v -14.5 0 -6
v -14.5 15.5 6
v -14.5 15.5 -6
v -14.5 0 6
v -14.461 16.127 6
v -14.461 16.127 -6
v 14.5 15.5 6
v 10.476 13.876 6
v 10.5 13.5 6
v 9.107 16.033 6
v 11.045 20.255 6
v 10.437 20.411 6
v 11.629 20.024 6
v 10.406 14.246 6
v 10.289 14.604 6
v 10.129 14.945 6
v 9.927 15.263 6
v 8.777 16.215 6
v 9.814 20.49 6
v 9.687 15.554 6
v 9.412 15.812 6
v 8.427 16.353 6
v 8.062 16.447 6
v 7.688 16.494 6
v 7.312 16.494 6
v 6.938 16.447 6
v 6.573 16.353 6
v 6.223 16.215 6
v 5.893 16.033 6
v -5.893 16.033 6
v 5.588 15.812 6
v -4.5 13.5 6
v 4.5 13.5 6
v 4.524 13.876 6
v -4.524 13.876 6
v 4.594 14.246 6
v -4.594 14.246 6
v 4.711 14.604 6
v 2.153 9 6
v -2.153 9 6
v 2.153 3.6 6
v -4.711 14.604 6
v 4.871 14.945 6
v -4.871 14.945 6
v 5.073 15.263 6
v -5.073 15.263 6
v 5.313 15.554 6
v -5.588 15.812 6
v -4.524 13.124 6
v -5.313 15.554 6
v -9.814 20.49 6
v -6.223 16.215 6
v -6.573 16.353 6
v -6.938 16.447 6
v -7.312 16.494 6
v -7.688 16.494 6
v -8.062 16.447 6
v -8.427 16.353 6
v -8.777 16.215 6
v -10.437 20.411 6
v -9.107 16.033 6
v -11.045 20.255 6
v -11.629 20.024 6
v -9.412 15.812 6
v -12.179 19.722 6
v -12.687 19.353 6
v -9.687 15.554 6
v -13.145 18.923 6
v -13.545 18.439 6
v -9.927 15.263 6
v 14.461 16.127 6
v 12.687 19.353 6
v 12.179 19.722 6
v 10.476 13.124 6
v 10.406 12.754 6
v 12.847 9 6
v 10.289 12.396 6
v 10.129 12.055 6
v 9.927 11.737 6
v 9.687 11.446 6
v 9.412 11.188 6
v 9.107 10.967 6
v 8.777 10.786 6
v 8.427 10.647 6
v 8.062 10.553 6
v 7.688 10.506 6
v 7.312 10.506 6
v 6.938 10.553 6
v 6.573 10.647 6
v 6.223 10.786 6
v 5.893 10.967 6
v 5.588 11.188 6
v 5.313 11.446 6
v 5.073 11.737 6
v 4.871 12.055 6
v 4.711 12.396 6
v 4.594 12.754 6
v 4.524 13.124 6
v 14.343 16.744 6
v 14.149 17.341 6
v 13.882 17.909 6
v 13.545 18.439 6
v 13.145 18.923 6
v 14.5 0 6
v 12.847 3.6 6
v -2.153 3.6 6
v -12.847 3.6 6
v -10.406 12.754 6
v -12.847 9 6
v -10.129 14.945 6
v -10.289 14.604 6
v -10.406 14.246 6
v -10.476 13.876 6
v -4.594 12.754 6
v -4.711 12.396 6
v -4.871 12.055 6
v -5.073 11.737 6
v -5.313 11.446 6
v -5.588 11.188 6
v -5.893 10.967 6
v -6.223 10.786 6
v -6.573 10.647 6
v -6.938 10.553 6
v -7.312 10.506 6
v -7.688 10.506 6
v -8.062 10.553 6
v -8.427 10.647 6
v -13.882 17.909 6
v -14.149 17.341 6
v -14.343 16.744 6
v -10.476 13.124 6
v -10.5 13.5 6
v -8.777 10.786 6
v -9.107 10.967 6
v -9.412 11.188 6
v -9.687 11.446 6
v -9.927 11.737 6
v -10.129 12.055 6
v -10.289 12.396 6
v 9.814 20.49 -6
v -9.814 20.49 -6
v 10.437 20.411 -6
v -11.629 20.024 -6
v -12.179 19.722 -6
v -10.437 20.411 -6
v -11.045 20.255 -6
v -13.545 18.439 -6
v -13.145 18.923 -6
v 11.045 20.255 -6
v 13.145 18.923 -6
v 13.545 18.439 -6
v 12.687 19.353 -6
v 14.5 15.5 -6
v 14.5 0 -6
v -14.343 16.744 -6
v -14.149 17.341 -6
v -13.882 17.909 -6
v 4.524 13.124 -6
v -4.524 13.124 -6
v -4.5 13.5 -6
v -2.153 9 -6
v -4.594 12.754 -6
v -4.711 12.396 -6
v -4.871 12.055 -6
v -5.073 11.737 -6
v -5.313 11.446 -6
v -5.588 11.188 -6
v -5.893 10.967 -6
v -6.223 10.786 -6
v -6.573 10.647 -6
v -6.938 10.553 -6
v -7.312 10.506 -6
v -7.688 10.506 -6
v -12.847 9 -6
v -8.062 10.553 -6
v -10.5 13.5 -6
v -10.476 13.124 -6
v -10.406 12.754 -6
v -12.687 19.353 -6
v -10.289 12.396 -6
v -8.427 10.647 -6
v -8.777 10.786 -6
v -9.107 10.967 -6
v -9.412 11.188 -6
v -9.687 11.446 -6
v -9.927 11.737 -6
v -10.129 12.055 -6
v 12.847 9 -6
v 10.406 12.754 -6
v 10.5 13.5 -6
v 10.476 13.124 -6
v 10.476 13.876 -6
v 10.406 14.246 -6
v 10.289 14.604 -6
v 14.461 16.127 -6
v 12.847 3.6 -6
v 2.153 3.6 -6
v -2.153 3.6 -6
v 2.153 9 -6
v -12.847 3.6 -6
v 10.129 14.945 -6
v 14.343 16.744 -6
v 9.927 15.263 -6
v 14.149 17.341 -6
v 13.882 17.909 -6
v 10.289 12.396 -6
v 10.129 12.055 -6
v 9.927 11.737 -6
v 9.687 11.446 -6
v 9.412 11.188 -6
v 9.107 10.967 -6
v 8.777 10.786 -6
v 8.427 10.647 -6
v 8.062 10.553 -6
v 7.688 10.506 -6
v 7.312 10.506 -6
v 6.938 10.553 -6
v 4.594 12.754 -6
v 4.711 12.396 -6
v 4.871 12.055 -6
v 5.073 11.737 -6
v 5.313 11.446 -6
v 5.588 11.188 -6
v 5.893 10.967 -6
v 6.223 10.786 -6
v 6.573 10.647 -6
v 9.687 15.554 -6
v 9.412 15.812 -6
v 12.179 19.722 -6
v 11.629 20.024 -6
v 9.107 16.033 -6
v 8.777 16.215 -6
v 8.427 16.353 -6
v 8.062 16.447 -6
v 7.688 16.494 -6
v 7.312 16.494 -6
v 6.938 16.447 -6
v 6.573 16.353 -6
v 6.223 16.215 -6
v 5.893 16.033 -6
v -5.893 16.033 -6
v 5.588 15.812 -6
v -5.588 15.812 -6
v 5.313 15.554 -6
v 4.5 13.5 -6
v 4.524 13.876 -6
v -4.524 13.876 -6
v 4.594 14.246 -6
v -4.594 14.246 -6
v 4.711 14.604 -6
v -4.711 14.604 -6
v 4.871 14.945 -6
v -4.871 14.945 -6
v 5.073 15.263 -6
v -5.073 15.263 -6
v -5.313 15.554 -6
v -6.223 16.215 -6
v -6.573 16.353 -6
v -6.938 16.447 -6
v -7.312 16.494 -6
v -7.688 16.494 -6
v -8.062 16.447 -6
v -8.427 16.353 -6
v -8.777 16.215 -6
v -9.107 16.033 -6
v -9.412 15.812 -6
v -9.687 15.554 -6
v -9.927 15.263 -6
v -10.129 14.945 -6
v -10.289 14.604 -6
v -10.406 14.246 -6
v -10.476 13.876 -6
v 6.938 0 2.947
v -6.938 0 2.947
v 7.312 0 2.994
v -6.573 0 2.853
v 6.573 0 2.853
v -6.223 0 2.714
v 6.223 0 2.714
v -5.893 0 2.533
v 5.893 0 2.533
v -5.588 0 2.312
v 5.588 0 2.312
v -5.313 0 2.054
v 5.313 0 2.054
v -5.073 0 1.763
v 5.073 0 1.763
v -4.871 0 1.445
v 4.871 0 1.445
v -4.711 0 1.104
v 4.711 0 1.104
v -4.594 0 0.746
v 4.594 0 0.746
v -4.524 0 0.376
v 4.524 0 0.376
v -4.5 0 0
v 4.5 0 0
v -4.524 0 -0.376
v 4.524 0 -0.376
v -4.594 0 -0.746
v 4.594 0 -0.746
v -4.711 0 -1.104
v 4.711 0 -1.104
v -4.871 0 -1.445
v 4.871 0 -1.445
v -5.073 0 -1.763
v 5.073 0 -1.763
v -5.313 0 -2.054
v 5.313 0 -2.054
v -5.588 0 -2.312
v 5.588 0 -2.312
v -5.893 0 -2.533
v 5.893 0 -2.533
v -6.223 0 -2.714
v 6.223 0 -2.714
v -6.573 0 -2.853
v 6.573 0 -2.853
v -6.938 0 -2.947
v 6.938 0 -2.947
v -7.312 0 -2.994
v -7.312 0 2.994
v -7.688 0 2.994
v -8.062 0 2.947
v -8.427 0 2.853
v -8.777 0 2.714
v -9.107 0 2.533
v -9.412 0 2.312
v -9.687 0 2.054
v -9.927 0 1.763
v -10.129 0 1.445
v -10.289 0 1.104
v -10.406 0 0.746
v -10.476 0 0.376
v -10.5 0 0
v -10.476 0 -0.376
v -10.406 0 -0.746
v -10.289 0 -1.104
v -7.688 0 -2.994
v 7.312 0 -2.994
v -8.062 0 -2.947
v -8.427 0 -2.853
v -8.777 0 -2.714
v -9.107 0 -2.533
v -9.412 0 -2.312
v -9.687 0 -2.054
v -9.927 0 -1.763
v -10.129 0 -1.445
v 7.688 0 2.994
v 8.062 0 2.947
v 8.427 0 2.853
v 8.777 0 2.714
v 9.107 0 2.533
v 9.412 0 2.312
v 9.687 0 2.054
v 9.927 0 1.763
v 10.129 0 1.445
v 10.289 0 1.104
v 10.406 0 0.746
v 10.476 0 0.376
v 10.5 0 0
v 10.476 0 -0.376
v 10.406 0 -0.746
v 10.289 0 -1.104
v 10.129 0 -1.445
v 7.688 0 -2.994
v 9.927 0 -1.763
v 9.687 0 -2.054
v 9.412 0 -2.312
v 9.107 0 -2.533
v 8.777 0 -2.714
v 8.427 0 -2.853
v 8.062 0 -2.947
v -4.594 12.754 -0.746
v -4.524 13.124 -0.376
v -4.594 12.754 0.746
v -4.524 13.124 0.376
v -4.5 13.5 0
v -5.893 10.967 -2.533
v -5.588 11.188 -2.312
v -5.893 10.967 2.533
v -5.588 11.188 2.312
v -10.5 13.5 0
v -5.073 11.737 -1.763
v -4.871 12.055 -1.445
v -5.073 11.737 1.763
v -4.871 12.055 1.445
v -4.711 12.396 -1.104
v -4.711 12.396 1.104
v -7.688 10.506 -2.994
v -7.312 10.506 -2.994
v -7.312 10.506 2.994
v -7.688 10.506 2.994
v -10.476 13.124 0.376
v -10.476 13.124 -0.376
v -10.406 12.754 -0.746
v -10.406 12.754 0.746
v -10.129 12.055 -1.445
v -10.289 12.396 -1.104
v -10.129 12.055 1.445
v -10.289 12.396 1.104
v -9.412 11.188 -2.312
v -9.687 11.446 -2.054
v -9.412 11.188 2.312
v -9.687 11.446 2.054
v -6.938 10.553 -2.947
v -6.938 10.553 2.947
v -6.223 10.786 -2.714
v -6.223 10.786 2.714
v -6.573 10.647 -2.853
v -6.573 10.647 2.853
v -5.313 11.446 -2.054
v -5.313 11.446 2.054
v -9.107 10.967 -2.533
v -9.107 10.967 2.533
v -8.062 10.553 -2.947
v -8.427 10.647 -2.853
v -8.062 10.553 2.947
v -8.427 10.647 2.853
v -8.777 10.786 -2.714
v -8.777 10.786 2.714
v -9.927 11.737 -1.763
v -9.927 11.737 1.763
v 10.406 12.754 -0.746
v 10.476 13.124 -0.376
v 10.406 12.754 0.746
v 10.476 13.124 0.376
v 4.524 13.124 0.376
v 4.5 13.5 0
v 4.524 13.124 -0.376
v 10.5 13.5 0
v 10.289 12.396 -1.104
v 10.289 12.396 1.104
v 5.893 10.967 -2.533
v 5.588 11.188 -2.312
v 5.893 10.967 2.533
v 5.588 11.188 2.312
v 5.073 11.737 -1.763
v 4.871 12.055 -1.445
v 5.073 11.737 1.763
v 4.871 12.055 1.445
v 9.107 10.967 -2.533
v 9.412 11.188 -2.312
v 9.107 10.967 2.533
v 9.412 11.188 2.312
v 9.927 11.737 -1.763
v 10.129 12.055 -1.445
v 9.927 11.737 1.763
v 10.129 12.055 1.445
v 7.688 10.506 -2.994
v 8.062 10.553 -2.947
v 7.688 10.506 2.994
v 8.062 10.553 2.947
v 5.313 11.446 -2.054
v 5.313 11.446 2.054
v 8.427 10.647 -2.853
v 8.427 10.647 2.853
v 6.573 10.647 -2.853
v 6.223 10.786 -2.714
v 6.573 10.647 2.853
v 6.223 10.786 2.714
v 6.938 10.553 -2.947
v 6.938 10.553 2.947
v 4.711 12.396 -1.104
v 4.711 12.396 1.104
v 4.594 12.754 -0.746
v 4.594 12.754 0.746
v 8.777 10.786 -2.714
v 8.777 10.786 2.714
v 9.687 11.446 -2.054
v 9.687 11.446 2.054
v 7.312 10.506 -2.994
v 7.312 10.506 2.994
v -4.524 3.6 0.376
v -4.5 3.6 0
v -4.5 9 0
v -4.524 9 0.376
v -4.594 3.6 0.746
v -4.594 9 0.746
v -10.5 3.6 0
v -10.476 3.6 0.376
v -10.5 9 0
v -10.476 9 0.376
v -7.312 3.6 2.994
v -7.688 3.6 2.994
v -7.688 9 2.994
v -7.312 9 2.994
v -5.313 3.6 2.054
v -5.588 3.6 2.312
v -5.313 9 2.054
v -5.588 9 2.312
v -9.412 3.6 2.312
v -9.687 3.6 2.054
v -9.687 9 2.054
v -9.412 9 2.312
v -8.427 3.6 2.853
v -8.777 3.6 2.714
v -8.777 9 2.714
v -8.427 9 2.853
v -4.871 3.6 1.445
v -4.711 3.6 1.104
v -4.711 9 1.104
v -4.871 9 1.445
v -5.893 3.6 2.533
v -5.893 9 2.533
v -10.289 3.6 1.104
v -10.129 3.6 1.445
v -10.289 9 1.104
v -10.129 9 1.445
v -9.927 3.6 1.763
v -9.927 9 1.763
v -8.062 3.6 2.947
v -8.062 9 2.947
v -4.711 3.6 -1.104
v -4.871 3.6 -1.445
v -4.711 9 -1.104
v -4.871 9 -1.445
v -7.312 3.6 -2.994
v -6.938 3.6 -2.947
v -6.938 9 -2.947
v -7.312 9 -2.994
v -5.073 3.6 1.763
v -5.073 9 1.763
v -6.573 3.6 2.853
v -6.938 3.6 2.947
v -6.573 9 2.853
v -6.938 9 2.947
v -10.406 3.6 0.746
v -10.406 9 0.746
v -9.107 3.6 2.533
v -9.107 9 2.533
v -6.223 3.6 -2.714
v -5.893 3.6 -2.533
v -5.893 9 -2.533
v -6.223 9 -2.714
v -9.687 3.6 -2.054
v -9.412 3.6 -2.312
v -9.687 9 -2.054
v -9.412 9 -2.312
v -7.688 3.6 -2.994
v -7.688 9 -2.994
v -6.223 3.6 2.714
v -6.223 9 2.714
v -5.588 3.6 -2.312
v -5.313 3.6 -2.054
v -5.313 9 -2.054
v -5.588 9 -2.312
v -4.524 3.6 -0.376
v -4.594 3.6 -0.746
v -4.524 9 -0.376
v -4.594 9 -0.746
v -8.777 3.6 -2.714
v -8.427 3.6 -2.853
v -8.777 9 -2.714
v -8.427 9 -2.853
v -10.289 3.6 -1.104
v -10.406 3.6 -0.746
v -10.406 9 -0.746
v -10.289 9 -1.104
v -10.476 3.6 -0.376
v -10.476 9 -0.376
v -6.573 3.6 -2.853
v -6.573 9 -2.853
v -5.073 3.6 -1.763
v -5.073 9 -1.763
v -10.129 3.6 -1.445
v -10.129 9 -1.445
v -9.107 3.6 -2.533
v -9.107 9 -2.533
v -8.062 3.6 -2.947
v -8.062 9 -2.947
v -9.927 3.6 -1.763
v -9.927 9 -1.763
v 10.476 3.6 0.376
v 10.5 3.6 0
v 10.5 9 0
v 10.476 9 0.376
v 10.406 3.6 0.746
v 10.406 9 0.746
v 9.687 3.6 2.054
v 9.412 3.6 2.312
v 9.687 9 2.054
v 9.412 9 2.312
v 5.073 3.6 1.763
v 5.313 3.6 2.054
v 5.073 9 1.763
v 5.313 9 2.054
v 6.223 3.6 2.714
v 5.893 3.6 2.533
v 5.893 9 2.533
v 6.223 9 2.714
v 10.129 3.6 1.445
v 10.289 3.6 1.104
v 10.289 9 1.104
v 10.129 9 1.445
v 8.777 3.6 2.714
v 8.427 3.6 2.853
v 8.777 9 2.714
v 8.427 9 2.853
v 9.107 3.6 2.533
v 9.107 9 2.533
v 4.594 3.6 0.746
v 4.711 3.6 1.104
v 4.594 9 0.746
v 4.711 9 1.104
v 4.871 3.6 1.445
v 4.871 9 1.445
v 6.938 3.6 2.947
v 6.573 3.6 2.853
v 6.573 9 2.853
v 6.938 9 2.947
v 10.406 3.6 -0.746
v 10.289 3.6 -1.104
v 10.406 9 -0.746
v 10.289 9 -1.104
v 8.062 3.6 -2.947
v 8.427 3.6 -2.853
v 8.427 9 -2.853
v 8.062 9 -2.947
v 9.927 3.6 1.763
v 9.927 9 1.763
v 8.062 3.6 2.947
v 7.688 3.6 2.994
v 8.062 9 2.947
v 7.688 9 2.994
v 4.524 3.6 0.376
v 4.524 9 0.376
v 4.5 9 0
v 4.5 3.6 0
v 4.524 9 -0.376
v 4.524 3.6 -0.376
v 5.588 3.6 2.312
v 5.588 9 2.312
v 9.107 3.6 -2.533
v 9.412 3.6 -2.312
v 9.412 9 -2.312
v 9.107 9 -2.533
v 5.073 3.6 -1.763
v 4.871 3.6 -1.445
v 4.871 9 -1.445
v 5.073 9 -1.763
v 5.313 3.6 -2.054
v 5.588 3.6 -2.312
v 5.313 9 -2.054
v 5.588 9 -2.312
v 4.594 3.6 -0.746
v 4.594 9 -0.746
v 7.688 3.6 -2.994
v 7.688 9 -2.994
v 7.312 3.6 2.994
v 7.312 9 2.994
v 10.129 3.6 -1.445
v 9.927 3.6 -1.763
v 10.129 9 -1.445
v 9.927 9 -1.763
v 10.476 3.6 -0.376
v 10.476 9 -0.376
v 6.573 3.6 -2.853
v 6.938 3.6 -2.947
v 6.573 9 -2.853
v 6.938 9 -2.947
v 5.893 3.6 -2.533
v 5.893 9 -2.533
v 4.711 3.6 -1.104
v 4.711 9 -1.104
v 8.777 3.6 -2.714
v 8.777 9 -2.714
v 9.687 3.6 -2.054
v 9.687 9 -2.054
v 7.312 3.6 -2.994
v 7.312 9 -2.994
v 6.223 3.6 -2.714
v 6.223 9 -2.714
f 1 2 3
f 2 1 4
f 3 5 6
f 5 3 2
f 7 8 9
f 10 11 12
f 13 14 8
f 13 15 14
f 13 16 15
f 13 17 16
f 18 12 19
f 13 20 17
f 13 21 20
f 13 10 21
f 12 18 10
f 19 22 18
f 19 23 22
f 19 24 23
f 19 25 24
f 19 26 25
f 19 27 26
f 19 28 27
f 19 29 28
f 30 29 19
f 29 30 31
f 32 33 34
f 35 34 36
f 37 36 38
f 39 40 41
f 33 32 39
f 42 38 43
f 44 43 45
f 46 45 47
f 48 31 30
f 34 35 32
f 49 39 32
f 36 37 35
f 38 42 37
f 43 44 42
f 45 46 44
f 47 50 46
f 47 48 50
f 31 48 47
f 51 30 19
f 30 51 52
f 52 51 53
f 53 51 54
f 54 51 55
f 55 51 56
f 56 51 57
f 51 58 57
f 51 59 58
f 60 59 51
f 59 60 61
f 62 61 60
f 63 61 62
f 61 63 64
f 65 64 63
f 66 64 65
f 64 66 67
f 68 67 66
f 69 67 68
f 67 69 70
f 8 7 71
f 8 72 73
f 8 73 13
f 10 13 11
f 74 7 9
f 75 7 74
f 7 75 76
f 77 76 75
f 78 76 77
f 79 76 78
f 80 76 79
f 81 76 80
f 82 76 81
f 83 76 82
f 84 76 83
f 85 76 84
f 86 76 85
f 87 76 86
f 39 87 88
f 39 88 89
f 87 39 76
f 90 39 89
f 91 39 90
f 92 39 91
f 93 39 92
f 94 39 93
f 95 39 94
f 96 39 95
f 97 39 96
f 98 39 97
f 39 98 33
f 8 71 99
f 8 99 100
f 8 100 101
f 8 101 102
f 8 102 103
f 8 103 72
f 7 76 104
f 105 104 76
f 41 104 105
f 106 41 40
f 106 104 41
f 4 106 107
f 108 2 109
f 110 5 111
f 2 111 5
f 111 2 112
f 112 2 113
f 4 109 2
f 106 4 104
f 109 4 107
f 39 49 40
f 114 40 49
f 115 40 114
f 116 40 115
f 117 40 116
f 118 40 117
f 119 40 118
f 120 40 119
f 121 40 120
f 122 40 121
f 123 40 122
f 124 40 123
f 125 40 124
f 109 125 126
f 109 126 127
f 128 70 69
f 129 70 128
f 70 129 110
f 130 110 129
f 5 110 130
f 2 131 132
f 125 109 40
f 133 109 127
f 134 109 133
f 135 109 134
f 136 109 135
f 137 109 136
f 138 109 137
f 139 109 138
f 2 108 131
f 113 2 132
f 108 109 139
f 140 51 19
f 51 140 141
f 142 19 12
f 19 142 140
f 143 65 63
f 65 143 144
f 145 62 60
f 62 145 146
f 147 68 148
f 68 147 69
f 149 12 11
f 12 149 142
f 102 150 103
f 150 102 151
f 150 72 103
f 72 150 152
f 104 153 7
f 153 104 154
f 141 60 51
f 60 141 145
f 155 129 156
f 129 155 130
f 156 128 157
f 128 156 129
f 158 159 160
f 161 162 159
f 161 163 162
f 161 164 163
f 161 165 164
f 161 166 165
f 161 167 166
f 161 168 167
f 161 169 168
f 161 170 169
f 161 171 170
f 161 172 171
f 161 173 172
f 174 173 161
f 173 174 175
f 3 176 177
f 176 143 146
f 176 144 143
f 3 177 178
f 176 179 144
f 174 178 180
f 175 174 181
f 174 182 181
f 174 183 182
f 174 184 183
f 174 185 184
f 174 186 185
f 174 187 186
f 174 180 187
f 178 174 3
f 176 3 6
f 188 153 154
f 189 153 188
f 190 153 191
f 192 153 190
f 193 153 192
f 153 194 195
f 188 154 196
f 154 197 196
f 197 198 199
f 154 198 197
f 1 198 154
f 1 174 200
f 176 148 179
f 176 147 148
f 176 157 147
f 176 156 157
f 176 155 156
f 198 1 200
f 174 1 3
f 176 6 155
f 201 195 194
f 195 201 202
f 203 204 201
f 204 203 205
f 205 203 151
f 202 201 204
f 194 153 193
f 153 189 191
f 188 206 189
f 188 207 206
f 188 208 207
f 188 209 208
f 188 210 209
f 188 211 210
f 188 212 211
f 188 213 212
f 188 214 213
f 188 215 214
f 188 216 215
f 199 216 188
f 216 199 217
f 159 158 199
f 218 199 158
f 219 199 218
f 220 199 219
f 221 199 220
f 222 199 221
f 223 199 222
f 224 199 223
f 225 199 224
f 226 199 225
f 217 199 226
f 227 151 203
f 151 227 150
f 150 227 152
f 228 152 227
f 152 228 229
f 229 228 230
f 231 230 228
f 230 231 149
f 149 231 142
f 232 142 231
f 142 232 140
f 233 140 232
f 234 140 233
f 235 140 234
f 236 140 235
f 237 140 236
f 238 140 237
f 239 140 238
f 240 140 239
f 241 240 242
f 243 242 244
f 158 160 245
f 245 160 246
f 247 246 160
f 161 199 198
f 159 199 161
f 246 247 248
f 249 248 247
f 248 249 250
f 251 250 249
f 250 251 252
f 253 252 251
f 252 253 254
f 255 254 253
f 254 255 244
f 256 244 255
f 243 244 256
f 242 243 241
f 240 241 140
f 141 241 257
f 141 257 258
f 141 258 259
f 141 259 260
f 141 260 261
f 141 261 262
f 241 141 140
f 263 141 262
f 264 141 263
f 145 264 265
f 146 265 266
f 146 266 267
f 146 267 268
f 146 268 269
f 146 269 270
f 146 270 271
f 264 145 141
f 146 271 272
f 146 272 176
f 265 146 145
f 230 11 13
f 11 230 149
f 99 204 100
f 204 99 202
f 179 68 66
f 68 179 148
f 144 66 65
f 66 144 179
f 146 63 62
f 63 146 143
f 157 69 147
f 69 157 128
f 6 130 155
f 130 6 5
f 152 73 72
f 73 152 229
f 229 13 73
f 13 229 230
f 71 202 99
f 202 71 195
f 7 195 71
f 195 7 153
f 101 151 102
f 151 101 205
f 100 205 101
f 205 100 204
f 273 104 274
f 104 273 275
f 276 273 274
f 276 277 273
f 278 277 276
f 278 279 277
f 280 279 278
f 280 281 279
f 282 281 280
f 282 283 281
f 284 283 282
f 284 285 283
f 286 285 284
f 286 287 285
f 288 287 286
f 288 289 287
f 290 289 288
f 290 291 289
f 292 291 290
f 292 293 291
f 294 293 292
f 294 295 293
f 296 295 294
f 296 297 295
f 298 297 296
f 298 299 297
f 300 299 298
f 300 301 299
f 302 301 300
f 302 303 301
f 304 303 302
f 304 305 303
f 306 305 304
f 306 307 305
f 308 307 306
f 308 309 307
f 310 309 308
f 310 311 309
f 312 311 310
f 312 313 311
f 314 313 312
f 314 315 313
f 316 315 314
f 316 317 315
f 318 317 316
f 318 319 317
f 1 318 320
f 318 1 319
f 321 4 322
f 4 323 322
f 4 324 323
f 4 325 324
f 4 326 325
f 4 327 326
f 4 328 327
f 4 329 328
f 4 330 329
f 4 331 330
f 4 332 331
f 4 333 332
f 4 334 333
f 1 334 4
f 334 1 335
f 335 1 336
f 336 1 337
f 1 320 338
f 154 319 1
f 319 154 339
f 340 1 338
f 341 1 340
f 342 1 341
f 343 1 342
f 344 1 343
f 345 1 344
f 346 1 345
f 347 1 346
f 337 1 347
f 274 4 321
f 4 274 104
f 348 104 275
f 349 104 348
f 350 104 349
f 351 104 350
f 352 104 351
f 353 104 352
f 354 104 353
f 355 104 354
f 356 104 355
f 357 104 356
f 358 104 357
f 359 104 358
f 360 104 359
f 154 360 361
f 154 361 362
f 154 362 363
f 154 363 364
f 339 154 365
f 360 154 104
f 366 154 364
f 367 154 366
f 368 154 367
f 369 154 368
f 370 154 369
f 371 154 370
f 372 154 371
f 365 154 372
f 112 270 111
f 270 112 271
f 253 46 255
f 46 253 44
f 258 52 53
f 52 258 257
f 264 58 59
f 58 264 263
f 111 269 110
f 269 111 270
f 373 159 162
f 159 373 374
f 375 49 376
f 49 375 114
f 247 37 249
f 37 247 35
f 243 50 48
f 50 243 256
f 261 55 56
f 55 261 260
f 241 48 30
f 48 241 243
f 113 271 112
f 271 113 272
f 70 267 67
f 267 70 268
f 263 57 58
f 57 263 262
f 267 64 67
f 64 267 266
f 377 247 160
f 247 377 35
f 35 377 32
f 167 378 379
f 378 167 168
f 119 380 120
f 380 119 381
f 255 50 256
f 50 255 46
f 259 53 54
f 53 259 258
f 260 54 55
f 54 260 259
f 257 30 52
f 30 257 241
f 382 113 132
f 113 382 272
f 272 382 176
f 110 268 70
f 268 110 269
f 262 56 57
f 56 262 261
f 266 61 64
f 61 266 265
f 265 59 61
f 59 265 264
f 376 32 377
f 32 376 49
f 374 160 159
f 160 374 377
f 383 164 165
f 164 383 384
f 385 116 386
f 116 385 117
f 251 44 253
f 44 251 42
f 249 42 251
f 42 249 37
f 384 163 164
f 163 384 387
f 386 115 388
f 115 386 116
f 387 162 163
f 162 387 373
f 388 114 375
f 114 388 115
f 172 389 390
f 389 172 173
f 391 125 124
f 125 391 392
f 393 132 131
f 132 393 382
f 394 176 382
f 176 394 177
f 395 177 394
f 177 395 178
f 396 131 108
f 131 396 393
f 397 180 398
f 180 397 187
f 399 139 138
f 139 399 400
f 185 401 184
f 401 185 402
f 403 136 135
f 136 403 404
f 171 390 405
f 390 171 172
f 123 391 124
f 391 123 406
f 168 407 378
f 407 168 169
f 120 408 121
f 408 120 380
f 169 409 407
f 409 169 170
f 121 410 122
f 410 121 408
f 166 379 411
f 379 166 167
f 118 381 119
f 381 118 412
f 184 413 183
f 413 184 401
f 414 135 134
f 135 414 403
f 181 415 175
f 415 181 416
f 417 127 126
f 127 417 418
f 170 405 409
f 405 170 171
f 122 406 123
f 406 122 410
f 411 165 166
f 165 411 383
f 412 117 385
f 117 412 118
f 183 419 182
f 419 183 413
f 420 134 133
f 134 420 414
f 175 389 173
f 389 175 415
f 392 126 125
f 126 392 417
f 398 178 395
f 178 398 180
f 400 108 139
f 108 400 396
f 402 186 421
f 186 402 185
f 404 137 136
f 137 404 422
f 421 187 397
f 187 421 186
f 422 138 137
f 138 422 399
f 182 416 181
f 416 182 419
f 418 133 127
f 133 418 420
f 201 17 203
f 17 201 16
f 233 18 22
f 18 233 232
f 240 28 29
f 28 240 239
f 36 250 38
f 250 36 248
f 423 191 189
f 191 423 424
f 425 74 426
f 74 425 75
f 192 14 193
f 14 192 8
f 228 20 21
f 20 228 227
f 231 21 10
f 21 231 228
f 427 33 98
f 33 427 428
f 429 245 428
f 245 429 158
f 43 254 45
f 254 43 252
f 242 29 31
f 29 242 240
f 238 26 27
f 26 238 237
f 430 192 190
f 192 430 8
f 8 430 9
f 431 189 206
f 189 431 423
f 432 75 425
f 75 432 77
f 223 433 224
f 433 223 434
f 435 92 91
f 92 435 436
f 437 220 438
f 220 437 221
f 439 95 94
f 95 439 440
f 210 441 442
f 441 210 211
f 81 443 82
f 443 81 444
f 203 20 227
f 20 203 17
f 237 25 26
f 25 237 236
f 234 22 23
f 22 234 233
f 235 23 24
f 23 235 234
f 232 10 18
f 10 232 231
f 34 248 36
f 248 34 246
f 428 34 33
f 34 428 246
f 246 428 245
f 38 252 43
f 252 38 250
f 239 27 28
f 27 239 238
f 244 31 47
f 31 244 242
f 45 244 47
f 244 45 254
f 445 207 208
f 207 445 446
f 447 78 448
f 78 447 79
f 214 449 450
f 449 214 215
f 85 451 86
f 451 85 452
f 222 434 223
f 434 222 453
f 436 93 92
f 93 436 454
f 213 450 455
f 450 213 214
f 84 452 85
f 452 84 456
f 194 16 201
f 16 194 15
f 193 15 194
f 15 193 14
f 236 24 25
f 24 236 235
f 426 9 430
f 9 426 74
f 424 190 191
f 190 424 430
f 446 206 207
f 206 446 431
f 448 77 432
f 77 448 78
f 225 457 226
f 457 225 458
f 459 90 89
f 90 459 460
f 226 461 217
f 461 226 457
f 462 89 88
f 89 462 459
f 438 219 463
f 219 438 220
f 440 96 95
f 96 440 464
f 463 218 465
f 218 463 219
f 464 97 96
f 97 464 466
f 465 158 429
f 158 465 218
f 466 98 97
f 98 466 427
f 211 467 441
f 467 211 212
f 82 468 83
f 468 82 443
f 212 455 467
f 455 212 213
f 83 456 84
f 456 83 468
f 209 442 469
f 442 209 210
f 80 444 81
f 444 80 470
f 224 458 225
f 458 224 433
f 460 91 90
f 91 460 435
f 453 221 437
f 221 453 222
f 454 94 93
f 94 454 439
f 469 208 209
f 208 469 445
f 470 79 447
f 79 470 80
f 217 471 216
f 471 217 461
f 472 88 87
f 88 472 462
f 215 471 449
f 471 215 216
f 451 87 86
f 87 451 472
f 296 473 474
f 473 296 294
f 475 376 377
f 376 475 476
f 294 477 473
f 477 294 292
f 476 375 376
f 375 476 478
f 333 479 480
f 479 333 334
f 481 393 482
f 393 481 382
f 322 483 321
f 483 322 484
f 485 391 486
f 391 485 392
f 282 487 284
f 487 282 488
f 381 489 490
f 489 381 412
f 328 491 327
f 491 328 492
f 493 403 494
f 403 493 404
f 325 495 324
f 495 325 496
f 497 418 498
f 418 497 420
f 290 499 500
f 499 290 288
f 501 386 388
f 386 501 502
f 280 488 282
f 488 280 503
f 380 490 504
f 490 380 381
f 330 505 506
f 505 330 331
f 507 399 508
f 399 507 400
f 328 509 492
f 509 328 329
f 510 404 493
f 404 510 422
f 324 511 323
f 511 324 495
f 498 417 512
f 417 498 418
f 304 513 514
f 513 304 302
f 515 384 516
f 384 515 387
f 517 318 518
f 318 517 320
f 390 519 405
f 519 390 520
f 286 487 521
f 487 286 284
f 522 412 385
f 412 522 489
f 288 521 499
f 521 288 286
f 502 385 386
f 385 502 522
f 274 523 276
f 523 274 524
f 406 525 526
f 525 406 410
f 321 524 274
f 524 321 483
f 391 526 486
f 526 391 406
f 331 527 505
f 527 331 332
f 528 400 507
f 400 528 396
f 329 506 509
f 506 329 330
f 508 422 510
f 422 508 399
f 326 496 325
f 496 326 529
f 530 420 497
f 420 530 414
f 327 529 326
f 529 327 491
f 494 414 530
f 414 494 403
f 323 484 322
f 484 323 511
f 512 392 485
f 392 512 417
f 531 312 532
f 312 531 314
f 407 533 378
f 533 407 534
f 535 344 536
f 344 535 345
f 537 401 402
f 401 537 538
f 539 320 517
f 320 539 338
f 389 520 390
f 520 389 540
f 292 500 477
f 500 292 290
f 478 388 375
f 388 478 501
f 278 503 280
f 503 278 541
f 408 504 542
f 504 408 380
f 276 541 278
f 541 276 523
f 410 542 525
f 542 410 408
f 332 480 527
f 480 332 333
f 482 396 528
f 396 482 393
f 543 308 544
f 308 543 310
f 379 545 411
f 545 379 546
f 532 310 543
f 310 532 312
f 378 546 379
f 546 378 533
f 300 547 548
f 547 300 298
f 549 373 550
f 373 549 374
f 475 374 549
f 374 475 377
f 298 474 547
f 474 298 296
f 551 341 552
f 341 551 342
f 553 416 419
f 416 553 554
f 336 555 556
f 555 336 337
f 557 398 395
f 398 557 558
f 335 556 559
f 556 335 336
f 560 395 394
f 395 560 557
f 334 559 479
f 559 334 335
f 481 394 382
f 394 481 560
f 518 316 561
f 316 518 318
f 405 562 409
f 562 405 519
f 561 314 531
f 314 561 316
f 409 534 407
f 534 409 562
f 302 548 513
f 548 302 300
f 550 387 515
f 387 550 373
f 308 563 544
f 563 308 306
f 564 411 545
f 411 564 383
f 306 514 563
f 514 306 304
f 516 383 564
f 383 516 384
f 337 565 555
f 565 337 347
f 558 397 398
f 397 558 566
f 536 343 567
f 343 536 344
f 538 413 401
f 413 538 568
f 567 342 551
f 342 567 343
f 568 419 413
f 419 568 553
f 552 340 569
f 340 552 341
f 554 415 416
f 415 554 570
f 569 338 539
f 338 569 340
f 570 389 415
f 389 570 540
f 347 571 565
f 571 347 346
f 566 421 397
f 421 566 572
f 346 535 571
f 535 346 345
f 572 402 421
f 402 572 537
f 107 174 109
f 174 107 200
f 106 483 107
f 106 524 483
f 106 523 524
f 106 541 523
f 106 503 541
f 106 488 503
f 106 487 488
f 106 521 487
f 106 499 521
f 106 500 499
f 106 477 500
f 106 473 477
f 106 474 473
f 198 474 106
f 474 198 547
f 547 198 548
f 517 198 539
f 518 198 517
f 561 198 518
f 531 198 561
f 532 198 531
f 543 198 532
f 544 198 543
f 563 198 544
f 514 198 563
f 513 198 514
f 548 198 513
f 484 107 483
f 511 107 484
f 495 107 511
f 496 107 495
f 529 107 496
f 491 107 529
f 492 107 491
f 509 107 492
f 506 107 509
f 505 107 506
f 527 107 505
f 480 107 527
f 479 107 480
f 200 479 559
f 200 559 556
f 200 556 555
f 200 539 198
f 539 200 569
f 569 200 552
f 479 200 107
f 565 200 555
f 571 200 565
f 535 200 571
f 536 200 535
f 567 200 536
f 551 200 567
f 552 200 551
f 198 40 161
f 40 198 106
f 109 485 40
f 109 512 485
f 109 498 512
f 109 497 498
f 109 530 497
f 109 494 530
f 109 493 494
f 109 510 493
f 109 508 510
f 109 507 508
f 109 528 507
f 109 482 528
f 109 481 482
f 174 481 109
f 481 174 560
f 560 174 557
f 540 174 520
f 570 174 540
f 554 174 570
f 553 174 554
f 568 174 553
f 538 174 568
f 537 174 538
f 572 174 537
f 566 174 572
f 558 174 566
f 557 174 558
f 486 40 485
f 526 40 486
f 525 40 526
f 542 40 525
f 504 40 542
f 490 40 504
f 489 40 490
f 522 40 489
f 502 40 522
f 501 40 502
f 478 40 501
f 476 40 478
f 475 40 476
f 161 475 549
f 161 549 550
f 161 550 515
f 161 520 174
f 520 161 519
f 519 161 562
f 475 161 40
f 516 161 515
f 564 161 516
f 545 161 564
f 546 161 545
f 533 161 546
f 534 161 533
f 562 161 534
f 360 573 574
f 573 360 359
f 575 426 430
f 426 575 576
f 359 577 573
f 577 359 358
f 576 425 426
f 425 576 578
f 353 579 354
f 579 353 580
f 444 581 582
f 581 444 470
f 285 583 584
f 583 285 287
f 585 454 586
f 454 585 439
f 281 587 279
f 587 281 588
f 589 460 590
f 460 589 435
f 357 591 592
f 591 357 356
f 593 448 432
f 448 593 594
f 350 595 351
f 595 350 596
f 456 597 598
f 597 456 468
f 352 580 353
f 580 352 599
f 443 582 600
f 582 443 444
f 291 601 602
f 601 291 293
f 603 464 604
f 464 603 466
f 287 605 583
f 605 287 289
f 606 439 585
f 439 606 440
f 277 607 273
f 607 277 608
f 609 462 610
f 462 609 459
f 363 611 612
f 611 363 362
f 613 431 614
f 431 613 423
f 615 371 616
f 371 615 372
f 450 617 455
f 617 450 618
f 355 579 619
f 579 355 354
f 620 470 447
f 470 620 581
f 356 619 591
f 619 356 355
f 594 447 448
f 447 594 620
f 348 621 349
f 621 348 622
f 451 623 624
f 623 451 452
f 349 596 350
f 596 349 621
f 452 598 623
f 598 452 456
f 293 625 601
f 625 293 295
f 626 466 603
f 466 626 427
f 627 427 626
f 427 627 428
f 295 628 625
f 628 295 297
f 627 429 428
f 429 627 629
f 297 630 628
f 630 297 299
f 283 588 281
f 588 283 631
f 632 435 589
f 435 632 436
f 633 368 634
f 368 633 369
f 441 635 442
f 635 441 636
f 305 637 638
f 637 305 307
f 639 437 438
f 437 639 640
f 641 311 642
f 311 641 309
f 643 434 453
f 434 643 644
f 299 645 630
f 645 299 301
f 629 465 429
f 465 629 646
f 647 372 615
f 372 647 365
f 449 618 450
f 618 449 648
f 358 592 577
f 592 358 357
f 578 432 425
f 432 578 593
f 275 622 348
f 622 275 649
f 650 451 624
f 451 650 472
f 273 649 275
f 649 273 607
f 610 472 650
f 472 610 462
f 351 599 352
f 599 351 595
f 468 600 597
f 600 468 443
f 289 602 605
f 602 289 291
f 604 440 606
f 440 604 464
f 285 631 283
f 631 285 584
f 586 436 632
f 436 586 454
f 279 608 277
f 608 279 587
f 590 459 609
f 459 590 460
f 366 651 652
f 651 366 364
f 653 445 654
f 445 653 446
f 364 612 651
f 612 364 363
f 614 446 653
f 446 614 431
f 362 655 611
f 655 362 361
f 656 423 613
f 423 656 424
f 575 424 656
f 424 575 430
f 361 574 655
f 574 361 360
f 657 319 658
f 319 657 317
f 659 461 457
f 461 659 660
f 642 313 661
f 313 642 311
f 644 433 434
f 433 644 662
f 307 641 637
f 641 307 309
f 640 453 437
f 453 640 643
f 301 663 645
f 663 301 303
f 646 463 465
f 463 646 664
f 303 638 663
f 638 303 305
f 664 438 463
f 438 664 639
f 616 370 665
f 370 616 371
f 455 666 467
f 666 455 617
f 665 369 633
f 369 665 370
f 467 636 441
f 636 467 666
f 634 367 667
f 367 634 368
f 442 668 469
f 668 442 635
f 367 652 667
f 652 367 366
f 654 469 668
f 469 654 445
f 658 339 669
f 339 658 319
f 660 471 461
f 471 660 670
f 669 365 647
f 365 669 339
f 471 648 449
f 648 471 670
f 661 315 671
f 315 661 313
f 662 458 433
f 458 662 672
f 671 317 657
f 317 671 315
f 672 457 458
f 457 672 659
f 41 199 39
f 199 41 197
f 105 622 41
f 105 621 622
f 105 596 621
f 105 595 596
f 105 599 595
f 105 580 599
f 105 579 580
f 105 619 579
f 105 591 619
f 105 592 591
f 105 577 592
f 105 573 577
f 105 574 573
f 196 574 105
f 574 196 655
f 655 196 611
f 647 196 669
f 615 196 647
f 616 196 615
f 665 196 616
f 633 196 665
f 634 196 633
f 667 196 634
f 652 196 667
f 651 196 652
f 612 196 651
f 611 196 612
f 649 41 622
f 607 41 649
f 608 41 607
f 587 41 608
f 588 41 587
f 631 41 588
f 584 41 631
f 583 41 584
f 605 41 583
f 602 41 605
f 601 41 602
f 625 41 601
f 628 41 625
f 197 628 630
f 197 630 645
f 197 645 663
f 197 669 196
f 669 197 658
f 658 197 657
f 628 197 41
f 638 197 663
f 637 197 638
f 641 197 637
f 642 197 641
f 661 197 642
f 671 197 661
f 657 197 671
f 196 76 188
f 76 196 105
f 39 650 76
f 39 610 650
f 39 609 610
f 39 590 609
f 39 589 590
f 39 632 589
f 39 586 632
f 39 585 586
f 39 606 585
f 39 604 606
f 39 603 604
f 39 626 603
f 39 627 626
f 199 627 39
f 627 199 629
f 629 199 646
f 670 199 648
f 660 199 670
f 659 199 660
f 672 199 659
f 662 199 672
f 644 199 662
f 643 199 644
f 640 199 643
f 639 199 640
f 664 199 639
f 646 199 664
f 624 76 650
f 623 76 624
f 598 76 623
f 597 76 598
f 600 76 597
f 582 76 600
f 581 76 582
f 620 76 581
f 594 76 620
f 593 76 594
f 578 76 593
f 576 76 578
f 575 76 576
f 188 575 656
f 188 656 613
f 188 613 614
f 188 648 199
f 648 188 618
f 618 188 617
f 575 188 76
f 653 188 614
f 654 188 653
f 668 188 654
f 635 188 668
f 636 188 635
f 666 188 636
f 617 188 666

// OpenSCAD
$fn = 50;


difference() {
	union() {
		translate(v = [0, 13.5000000000, -6.0000000000]) {
			rotate(a = [0, 0, 0]) {
				hull() {
					translate(v = [-9.5000000000, 2.0000000000, 0]) {
						rotate(a = [0, 0, 0]) {
							translate(v = [0, 0, 0]) {
								rotate(a = [0, 0, 0]) {
									cylinder(h = 12, r = 5);
								}
							}
						}
					}
					translate(v = [9.5000000000, 2.0000000000, 0]) {
						rotate(a = [0, 0, 0]) {
							translate(v = [0, 0, 0]) {
								rotate(a = [0, 0, 0]) {
									cylinder(h = 12, r = 5);
								}
							}
						}
					}
					translate(v = [-9.5000000000, -2.0000000000, 0]) {
						rotate(a = [0, 0, 0]) {
							translate(v = [0, 0, 0]) {
								rotate(a = [0, 0, 0]) {
									cylinder(h = 12, r = 5);
								}
							}
						}
					}
					translate(v = [9.5000000000, -2.0000000000, 0]) {
						rotate(a = [0, 0, 0]) {
							translate(v = [0, 0, 0]) {
								rotate(a = [0, 0, 0]) {
									cylinder(h = 12, r = 5);
								}
							}
						}
					}
				}
			}
		}
		translate(v = [-14.5000000000, 0, -6.0000000000]) {
			rotate(a = [0, 0, 0]) {
				cube(size = [29, 13.5000000000, 12]);
			}
		}
	}
	union() {
		translate(v = [-7.5000000000, 13.5000000000, -6.0000000000]) {
			rotate(a = [0, 0, 0]) {
				translate(v = [0, 0, -50]) {
					rotate(a = [0, 0, 0]) {
						cylinder(h = 100, r = 3.0000000000);
					}
				}
			}
		}
		translate(v = [7.5000000000, 13.5000000000, -6.0000000000]) {
			rotate(a = [0, 0, 0]) {
				translate(v = [0, 0, -50]) {
					rotate(a = [0, 0, 0]) {
						cylinder(h = 100, r = 3.0000000000);
					}
				}
			}
		}
		translate(v = [-7.5000000000, 13.5000000000, 0]) {
			rotate(a = [90, 0, 0]) {
				cylinder(h = 13.5000000000, r = 3.0000000000);
			}
		}
		translate(v = [-12.8466204506, 9, -25]) {
			rotate(a = [90, 0, 0]) {
				cube(size = [10.6932409012, 100, 5.4000000000]);
			}
		}
		translate(v = [7.5000000000, 13.5000000000, 0]) {
			rotate(a = [90, 0, 0]) {
				cylinder(h = 13.5000000000, r = 3.0000000000);
			}
		}
		translate(v = [2.1533795494, 9, -25]) {
			rotate(a = [90, 0, 0]) {
				cube(size = [10.6932409012, 100, 5.4000000000]);
			}
		}
	}
}
